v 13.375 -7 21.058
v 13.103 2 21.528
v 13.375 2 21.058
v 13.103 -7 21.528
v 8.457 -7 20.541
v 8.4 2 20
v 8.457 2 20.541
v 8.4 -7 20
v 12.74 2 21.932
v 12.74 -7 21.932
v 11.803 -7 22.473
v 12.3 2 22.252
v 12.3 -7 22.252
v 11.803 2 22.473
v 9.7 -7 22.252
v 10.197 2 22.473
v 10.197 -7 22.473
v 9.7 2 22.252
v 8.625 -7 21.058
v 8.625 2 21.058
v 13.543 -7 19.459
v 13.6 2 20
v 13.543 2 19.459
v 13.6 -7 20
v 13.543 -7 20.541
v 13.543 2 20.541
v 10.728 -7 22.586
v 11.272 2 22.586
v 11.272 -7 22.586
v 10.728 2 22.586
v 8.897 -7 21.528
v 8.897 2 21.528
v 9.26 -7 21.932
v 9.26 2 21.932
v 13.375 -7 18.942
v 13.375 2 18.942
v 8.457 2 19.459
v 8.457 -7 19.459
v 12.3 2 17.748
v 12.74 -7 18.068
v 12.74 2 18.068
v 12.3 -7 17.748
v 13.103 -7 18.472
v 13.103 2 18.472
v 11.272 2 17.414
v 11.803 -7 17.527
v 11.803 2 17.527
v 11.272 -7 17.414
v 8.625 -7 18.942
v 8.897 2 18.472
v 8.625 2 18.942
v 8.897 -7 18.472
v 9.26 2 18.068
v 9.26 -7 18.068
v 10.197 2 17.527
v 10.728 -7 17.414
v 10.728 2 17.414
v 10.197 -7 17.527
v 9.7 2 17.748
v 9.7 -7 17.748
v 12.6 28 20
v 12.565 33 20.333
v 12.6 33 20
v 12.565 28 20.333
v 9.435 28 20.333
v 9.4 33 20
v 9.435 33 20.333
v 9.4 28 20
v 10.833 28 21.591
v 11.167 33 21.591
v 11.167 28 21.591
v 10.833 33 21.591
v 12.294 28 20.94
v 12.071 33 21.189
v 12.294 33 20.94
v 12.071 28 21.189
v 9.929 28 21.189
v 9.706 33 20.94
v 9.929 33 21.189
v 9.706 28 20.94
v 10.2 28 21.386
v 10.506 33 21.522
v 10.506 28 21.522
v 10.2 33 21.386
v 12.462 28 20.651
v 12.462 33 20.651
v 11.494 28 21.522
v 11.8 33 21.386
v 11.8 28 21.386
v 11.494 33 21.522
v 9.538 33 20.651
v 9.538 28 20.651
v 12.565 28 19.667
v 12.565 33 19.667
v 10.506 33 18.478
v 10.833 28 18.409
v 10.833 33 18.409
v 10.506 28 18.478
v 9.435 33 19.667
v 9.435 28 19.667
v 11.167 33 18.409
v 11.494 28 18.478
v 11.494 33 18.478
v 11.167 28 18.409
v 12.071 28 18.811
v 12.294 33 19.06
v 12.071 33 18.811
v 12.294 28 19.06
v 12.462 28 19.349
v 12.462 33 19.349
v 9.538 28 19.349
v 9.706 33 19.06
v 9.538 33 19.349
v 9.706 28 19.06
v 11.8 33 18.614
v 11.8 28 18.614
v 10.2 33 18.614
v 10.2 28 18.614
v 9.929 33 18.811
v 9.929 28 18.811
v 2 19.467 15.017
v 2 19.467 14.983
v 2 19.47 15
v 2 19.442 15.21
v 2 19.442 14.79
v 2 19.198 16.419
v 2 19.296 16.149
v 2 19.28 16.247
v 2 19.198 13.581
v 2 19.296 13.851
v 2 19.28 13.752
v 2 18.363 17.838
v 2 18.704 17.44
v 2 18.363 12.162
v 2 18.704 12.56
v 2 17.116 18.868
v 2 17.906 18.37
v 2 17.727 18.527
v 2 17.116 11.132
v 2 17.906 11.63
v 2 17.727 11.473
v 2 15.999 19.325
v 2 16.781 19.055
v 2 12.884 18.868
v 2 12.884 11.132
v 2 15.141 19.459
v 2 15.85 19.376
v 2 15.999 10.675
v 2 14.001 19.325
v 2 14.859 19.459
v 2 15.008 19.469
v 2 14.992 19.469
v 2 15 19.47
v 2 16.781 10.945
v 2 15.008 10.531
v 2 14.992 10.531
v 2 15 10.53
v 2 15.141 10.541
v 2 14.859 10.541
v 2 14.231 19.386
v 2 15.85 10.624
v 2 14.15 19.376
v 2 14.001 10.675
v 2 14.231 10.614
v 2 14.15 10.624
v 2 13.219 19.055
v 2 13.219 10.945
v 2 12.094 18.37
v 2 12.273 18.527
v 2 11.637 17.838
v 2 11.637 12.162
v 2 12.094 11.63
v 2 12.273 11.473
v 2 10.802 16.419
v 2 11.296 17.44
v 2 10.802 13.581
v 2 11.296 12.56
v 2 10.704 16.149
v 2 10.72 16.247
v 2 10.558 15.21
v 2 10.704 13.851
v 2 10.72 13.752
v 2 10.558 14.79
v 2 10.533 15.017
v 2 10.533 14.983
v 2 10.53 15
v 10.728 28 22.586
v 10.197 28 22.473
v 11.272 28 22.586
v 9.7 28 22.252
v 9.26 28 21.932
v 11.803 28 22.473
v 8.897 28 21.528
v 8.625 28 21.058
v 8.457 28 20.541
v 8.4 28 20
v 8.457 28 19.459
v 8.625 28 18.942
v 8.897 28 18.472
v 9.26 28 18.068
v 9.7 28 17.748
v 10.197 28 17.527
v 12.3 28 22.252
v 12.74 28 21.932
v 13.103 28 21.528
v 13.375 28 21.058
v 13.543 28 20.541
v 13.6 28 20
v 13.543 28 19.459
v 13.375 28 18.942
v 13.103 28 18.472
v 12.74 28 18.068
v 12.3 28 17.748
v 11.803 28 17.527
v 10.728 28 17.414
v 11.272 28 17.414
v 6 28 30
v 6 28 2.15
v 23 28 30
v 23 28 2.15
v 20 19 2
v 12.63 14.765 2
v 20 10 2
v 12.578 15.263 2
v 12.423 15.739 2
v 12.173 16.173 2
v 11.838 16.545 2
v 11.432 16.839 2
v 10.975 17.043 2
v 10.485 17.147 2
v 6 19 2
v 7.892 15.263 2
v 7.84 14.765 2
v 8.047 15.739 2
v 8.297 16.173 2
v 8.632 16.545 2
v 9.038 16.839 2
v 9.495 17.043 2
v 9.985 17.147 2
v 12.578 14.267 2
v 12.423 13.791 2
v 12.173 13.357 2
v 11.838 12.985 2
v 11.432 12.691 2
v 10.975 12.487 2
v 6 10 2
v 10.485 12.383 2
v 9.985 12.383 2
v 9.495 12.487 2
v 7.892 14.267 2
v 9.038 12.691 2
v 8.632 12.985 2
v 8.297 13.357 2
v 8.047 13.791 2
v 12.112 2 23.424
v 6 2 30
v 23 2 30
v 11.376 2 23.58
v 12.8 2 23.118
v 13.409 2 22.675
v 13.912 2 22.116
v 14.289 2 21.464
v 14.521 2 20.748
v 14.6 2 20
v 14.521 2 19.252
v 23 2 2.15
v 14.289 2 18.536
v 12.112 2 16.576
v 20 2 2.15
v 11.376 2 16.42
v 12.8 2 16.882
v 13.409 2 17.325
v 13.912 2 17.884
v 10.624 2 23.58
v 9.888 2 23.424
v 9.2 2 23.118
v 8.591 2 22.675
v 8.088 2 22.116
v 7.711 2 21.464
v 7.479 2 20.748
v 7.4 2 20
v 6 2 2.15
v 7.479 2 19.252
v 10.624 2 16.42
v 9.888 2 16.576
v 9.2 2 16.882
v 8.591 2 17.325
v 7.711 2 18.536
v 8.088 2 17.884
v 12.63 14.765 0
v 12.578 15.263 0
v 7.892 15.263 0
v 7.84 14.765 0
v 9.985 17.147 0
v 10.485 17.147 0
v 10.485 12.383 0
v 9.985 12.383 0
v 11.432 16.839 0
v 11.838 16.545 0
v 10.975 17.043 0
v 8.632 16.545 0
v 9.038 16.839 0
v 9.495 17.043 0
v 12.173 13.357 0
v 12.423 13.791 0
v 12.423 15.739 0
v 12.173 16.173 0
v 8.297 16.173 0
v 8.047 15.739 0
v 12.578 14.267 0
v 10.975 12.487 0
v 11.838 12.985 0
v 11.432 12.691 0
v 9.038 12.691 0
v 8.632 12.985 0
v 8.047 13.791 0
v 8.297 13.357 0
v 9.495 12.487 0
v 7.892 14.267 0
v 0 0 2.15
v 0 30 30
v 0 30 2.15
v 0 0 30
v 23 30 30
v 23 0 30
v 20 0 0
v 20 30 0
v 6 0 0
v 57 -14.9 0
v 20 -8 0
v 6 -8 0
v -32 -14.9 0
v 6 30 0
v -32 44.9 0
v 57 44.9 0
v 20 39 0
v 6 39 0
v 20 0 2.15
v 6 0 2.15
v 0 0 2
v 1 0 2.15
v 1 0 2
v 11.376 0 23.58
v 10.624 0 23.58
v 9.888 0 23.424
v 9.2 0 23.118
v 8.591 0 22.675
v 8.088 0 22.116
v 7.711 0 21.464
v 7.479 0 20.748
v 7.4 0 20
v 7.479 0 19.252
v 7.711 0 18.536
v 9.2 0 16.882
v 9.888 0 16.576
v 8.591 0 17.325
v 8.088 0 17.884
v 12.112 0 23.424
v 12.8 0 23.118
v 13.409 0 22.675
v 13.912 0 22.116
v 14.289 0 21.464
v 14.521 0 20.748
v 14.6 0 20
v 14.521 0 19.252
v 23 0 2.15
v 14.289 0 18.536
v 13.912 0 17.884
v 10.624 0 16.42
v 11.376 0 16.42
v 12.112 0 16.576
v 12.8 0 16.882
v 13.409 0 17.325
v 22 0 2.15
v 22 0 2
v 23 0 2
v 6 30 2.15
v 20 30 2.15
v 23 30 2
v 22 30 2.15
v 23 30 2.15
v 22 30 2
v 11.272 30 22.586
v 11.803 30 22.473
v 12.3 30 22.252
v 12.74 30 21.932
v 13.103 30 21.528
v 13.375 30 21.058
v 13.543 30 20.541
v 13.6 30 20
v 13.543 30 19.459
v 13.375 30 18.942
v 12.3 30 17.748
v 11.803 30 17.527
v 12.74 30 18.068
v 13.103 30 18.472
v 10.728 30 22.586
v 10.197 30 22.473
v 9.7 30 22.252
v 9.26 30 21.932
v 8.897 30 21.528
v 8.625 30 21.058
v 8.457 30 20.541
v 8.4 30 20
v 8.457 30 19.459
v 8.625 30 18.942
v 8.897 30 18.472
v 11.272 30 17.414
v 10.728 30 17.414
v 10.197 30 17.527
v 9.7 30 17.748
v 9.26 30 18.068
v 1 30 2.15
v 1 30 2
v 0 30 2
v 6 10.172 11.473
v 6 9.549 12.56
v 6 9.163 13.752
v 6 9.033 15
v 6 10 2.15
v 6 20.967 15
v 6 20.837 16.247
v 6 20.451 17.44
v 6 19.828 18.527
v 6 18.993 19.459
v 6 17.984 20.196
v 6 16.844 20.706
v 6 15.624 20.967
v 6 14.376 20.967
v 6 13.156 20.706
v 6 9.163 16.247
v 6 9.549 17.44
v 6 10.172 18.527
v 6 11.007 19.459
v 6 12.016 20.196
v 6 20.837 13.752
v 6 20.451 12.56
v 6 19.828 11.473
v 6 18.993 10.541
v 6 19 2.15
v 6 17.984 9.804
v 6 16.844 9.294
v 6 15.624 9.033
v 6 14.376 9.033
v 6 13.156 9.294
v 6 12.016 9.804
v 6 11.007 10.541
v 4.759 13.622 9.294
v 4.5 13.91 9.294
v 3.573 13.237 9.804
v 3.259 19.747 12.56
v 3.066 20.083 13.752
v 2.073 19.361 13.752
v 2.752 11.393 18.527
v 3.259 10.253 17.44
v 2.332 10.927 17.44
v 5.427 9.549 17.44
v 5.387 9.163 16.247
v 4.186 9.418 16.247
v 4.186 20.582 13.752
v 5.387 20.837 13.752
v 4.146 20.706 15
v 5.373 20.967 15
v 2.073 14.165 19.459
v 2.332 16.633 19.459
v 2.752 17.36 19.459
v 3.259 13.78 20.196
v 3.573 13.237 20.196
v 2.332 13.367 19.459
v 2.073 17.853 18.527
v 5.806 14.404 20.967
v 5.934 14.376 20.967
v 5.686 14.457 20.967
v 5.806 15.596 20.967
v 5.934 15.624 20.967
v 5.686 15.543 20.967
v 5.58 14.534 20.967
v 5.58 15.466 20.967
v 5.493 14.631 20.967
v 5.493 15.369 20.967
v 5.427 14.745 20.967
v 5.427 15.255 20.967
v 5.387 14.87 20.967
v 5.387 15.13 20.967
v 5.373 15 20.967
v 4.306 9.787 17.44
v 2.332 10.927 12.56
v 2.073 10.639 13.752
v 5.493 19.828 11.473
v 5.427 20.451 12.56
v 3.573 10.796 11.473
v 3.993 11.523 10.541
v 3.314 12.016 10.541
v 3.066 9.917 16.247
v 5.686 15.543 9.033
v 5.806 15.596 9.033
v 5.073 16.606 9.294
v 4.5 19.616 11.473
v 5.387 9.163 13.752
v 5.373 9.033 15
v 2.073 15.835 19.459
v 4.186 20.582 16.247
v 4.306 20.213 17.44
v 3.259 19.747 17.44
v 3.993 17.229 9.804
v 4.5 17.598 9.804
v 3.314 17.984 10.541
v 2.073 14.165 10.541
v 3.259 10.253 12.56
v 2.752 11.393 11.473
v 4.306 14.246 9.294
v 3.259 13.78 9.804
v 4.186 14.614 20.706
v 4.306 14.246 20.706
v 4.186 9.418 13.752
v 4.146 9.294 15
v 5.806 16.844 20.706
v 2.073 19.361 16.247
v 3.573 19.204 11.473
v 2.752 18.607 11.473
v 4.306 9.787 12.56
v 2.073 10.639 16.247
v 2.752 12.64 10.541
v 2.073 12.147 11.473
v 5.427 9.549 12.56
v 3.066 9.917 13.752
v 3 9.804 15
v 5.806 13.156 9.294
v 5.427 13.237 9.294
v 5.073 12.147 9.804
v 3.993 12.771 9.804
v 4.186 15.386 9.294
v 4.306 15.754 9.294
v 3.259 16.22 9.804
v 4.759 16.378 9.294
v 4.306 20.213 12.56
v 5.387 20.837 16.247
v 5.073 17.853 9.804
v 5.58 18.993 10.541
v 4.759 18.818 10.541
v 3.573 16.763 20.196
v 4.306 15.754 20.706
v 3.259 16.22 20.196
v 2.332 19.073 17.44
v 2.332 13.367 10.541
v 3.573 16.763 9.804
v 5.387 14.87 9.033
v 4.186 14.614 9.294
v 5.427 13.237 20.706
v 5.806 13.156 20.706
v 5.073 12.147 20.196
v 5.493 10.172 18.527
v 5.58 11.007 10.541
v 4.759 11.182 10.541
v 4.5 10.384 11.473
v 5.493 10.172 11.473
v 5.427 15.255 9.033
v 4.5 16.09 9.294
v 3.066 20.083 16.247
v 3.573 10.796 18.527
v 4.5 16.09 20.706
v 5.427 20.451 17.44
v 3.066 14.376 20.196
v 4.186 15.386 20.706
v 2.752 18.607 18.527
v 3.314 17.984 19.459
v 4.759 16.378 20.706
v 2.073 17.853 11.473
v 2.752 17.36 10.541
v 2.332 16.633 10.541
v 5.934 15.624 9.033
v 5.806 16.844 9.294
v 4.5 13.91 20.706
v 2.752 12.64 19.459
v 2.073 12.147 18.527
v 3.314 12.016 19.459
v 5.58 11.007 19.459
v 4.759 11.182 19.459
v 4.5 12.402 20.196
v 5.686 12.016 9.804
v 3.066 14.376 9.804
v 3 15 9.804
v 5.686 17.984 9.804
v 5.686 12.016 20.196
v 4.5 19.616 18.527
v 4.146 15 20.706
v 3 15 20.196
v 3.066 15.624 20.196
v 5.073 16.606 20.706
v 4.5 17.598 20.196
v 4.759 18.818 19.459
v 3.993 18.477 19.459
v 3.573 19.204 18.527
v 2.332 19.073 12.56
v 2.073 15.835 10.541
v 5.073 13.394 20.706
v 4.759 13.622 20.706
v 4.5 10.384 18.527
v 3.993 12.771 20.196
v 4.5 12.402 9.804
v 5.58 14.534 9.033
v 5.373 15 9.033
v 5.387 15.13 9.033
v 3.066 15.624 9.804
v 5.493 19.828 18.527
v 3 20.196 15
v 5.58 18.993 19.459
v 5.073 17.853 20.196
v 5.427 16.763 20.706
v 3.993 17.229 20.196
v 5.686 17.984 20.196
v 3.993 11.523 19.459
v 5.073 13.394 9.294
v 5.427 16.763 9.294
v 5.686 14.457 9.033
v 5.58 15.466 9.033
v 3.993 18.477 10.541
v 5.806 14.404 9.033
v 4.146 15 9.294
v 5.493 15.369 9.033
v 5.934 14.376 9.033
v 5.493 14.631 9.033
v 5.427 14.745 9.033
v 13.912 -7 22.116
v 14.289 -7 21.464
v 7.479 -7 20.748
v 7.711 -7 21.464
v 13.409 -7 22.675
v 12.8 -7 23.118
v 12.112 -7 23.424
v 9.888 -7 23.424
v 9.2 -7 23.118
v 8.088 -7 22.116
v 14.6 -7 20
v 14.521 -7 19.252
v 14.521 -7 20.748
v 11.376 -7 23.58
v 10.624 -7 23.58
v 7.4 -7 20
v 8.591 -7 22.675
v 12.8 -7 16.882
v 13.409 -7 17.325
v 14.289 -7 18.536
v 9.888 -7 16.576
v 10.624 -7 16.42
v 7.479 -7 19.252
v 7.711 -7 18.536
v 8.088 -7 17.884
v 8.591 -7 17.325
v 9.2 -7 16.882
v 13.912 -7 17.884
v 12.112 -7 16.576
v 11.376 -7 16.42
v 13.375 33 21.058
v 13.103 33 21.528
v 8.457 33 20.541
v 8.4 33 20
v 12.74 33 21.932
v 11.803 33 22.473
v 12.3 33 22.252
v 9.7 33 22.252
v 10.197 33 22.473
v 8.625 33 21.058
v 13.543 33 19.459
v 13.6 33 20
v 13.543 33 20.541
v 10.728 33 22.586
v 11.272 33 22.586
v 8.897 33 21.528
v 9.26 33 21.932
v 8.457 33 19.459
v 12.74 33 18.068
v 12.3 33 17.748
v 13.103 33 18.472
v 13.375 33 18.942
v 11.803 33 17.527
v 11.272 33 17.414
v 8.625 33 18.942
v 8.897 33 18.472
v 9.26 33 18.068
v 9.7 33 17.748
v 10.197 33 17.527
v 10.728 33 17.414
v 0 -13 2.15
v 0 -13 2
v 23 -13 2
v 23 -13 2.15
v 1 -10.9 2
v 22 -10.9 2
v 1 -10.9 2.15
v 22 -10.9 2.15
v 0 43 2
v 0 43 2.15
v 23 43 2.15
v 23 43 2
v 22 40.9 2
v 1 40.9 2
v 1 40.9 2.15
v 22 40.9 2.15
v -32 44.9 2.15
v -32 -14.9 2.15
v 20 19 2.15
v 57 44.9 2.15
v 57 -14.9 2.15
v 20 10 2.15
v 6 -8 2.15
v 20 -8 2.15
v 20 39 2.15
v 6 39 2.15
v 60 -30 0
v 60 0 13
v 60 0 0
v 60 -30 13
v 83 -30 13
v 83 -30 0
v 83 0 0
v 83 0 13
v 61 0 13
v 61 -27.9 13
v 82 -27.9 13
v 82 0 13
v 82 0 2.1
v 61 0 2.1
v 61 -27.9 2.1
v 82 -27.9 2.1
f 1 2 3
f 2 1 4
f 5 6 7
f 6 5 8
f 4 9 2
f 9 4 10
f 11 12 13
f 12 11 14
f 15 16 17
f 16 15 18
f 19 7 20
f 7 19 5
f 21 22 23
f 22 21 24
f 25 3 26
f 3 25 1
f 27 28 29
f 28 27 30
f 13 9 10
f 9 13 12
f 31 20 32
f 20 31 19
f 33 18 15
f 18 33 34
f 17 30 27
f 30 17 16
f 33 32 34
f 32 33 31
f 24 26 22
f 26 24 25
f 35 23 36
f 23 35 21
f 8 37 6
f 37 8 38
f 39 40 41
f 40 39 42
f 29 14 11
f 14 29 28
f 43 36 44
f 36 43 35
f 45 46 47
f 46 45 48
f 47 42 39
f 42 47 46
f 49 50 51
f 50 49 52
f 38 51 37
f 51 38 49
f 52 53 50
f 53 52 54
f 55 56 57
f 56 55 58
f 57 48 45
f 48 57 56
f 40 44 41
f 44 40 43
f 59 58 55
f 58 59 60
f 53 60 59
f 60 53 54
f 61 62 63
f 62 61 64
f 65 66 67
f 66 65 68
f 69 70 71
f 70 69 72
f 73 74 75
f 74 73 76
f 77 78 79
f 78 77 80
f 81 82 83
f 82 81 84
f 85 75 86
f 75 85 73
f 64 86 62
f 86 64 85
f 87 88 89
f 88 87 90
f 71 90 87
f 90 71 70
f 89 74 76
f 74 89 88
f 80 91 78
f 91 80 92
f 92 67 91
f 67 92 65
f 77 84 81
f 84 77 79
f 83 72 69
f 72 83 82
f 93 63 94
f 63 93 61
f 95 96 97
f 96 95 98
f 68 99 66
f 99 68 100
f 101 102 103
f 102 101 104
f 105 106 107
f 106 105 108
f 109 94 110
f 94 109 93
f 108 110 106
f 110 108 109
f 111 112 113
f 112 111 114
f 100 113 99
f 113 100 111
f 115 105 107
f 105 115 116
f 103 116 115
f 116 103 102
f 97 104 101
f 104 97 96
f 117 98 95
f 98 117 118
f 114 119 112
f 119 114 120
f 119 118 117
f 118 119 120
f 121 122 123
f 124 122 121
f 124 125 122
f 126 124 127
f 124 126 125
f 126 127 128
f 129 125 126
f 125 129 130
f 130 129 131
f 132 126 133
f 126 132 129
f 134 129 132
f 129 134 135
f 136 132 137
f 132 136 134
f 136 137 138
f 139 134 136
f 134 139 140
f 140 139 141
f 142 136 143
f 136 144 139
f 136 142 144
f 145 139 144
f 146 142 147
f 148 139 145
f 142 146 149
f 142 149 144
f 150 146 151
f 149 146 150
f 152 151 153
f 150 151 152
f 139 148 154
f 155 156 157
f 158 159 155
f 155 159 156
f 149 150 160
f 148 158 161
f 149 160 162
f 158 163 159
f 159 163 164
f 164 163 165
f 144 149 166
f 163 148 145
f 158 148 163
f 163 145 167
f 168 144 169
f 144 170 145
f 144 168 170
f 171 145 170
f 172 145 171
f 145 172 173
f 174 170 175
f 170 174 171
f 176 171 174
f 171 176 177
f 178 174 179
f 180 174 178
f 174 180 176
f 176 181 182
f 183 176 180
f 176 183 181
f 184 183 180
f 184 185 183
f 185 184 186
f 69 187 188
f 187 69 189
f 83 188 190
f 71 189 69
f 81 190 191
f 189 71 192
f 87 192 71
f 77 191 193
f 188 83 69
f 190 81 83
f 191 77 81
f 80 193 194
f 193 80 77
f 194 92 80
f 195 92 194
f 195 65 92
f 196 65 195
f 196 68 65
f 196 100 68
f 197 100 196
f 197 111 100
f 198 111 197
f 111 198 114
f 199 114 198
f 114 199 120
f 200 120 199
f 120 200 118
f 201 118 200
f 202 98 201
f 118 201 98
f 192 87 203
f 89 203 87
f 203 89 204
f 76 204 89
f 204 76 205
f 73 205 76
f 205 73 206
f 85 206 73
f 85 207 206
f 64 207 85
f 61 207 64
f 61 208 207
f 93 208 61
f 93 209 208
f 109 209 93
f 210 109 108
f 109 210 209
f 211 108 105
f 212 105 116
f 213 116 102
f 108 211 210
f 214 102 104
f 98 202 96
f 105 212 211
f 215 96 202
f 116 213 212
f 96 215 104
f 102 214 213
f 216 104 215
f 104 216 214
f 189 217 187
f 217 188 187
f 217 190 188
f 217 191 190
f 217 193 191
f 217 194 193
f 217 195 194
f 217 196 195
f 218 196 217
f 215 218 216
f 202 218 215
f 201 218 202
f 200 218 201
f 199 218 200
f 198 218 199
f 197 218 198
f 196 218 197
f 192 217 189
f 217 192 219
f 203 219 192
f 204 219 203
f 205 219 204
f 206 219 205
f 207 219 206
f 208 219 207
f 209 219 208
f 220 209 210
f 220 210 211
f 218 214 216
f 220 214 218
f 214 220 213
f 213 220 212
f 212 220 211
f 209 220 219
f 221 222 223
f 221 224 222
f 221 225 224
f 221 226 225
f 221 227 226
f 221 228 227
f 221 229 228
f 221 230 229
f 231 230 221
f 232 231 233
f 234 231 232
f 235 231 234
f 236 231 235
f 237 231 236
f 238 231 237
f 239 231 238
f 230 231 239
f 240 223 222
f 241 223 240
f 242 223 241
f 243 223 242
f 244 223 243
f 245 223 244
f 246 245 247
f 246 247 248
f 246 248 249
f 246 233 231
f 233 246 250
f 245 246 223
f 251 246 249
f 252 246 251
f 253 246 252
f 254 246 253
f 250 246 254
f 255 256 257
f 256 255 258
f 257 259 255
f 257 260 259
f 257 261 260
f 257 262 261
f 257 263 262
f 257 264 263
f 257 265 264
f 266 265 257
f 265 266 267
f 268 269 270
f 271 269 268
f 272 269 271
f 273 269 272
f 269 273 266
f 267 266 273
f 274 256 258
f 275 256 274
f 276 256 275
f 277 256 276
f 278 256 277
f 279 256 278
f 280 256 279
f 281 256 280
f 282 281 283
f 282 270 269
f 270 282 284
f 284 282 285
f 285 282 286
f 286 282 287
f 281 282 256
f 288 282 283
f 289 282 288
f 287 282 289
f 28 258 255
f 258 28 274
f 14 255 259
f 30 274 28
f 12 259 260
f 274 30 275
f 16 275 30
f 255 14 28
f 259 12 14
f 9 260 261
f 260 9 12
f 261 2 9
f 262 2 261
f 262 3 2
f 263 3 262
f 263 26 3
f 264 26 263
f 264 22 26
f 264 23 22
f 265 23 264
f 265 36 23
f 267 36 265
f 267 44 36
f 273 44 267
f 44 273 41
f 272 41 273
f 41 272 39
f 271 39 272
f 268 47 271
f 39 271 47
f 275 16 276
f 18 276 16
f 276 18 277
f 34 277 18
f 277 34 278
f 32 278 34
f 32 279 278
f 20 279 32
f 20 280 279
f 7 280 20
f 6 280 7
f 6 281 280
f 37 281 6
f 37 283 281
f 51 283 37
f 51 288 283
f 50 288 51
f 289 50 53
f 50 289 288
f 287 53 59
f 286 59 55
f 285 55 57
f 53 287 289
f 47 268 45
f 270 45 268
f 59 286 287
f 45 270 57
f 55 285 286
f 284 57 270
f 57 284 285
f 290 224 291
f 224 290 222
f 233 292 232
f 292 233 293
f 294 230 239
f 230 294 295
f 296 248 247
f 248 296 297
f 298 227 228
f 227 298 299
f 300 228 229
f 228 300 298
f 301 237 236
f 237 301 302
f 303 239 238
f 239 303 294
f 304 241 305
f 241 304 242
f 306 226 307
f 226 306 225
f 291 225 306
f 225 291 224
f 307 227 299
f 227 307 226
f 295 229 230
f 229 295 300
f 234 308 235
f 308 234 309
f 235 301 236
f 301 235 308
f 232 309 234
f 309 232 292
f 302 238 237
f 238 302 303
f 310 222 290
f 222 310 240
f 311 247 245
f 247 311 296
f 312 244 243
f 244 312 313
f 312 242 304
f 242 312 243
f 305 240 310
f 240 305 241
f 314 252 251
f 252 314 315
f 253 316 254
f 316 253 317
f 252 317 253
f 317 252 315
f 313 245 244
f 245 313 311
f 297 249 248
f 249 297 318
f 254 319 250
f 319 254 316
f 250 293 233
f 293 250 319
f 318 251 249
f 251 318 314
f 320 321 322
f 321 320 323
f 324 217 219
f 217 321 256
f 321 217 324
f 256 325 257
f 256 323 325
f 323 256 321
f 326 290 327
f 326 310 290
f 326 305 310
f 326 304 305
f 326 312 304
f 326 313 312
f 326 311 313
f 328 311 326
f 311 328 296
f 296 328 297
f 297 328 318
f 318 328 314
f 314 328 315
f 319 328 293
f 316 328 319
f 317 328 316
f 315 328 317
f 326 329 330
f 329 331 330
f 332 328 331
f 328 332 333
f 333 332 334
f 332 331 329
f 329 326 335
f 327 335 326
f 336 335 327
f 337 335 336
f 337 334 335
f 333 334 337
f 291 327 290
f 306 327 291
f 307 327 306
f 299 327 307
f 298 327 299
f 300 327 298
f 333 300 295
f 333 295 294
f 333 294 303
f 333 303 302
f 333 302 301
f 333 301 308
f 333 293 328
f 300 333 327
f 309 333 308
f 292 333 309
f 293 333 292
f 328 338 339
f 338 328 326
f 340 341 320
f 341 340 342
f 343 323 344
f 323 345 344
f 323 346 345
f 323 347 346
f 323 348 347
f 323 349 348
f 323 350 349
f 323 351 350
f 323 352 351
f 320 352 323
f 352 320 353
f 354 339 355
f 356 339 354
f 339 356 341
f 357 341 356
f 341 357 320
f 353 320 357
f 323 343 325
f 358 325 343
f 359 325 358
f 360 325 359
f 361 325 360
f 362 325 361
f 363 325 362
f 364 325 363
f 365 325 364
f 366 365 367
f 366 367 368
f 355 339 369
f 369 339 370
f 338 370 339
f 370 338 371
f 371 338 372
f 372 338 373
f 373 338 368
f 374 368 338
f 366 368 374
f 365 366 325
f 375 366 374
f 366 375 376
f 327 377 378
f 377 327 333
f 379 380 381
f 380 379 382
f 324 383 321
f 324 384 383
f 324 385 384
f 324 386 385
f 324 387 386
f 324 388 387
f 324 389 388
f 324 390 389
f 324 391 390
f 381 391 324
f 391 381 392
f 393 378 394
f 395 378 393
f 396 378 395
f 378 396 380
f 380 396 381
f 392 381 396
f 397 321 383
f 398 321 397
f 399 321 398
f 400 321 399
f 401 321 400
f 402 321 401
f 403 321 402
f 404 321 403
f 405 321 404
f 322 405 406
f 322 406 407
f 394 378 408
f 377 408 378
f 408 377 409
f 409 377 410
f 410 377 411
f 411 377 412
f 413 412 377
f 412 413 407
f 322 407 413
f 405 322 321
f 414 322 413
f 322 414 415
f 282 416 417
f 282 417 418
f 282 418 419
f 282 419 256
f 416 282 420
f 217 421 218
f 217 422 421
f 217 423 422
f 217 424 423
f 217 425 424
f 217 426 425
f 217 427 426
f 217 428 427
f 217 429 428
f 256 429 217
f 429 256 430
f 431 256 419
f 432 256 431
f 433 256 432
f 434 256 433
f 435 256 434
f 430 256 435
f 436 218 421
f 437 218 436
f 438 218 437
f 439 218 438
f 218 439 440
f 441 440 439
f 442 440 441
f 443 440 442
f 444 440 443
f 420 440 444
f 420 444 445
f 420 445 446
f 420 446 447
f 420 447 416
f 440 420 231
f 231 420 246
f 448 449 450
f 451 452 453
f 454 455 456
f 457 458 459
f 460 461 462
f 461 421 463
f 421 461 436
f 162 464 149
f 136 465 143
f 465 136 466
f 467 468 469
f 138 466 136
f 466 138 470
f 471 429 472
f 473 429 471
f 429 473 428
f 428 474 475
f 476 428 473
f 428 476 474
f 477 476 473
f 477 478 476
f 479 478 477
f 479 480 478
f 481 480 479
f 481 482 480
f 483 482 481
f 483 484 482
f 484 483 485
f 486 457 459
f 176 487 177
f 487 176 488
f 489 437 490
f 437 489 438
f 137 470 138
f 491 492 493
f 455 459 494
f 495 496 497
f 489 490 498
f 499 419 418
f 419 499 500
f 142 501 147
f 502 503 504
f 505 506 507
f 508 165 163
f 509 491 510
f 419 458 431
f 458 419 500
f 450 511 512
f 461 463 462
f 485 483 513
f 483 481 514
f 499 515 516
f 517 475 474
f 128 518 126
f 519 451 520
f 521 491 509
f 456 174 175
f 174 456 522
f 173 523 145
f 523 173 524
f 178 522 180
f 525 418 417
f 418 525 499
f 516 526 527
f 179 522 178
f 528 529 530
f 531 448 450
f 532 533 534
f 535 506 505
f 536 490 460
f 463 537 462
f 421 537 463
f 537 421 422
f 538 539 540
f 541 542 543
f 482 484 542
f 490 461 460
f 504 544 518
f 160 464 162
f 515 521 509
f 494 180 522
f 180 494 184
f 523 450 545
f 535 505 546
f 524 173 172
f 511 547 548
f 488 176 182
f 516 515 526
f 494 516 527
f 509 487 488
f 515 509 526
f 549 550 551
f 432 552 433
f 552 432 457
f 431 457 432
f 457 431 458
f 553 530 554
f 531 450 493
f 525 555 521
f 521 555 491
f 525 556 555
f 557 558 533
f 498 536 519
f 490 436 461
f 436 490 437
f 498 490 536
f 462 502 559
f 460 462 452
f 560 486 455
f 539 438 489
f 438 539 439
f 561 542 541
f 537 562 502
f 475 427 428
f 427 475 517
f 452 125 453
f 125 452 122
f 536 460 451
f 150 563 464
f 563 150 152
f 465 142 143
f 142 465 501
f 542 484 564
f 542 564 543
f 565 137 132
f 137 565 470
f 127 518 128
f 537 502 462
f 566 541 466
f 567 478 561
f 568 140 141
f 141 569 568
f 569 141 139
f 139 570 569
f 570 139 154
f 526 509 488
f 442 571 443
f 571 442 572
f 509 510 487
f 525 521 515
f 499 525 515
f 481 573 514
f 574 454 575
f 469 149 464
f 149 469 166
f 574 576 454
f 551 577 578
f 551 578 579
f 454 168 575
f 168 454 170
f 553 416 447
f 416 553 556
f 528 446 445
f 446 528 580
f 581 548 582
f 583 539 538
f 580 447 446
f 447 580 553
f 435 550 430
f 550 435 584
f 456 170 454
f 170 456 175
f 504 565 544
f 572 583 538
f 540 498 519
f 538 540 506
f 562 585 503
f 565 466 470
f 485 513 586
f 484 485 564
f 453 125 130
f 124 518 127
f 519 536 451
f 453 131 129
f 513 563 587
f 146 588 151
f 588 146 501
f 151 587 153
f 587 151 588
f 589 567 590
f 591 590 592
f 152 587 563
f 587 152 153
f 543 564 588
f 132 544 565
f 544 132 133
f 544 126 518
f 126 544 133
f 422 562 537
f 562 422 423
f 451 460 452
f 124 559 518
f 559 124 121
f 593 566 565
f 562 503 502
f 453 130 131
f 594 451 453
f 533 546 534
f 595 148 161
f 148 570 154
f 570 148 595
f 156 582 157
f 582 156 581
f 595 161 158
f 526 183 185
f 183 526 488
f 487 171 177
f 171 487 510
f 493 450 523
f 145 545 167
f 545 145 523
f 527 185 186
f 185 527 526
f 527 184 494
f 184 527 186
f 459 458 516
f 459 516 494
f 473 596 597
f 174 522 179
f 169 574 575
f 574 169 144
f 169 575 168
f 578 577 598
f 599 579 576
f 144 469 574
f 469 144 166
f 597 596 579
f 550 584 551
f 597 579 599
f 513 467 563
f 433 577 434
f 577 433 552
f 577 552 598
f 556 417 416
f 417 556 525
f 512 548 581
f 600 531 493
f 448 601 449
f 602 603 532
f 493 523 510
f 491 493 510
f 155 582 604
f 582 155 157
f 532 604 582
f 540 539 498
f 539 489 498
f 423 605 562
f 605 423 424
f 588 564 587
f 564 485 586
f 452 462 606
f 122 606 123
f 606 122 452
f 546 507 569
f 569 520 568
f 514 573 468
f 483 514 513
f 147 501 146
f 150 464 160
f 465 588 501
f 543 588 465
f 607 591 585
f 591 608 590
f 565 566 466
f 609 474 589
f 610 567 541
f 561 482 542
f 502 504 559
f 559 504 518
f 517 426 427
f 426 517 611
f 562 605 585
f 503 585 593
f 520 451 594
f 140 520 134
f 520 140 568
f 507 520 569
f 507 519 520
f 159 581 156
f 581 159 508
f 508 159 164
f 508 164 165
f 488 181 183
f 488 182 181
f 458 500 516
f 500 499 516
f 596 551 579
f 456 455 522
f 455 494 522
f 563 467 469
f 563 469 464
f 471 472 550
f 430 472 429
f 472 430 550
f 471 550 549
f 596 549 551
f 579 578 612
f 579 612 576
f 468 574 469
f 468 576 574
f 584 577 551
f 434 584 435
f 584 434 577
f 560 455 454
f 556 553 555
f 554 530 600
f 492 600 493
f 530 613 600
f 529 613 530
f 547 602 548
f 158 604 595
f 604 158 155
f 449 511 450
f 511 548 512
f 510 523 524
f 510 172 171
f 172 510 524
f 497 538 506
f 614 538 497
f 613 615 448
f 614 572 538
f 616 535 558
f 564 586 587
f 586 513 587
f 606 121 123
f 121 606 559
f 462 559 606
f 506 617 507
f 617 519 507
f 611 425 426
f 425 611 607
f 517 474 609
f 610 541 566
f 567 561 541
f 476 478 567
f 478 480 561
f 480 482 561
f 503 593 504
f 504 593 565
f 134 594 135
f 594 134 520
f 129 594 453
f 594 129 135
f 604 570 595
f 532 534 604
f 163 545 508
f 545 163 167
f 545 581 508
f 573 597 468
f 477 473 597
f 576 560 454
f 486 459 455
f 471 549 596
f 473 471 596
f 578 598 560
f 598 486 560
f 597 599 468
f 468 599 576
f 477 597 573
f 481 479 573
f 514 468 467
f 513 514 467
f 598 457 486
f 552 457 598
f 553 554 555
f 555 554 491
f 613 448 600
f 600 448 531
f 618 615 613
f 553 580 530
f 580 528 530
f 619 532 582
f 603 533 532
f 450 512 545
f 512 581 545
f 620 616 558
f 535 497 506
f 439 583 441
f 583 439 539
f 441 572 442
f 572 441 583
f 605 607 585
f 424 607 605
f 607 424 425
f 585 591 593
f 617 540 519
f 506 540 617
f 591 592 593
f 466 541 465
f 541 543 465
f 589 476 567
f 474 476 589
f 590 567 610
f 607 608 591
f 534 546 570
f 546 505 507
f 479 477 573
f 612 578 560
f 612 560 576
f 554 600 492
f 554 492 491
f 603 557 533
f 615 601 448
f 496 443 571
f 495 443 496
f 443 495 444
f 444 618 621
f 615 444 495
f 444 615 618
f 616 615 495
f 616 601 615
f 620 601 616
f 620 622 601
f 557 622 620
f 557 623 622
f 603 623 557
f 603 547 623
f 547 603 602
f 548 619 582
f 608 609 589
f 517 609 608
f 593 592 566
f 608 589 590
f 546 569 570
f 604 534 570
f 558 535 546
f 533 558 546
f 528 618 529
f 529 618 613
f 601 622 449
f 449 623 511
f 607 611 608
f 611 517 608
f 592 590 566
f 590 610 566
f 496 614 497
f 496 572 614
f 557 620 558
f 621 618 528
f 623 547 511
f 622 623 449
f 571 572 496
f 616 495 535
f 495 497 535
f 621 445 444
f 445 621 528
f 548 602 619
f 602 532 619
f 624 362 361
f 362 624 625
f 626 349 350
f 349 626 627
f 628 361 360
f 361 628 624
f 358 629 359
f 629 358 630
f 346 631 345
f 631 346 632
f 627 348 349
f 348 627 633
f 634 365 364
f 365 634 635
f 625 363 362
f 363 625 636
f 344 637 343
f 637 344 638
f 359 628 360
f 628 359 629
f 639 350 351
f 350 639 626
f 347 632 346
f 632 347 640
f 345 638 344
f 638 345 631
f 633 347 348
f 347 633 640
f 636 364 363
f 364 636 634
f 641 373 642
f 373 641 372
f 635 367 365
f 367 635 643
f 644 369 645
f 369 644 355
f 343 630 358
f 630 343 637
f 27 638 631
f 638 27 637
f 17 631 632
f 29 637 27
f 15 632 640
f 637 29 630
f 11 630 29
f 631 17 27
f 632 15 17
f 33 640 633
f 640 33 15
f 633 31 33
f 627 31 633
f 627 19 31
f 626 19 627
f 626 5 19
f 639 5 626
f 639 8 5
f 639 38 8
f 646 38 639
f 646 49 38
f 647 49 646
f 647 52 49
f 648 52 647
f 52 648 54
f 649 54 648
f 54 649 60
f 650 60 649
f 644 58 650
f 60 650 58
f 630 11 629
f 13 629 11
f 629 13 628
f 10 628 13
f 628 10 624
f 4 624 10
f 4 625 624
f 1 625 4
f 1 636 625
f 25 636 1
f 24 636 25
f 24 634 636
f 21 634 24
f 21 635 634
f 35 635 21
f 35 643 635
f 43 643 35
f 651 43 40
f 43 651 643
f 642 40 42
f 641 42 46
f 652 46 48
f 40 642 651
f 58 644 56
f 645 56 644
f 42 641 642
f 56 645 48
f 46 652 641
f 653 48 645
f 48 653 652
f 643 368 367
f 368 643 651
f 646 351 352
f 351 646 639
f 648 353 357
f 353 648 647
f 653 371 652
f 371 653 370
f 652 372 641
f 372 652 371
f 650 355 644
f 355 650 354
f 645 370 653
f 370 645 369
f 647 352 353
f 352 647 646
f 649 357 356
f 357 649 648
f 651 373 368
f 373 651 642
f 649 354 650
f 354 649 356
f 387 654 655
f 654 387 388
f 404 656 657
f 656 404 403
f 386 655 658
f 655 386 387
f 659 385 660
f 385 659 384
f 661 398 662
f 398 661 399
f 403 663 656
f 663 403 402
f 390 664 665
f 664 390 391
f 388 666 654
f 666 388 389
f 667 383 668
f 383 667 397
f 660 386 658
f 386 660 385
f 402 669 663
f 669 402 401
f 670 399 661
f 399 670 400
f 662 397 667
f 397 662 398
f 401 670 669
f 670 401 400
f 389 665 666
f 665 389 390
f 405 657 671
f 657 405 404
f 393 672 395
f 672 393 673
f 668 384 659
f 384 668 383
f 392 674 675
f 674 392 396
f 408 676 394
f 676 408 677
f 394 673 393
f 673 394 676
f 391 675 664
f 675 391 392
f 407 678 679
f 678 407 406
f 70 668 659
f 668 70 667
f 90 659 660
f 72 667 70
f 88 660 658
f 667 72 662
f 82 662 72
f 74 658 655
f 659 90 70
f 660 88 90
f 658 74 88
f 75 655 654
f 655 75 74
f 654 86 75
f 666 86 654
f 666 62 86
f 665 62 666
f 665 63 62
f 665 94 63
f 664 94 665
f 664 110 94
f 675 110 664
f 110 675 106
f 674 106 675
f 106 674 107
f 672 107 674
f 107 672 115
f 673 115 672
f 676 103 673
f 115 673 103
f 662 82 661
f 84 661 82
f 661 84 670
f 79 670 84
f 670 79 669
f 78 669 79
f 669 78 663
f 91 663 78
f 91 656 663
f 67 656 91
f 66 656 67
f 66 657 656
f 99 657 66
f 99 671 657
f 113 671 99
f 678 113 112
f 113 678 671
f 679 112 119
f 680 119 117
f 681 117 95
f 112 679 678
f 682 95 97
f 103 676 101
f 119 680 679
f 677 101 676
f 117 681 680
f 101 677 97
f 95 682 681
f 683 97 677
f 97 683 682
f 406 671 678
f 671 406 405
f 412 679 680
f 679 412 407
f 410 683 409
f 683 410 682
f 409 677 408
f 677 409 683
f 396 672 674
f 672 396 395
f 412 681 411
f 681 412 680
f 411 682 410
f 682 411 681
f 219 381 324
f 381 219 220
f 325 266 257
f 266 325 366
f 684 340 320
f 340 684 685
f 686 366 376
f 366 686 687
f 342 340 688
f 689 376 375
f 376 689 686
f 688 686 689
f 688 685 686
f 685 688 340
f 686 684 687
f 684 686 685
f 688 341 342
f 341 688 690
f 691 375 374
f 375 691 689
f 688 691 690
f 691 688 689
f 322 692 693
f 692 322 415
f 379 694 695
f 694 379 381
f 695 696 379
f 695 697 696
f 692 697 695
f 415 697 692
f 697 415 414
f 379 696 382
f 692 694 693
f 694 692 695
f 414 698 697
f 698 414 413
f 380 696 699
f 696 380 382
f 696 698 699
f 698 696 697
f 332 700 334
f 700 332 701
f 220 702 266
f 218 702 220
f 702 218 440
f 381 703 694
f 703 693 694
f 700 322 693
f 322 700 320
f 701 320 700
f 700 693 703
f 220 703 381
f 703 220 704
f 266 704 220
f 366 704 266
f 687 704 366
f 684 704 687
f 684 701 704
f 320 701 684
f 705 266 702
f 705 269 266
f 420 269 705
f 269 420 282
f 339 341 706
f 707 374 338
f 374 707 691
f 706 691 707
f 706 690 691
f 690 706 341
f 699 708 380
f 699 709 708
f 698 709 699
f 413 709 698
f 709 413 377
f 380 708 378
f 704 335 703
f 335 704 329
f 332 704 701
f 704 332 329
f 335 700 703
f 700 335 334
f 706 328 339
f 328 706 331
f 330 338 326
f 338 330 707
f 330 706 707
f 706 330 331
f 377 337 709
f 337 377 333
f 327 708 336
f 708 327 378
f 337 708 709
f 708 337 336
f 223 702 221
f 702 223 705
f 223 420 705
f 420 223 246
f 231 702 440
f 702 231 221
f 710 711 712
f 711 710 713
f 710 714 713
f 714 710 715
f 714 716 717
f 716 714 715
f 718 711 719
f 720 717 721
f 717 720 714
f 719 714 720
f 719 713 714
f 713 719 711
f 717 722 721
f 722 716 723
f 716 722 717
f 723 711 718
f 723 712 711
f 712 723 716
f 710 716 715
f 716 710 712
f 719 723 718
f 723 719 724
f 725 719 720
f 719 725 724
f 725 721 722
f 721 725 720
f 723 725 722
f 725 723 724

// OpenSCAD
// file: ring.scad
///////////////////////////////////////
// Module to make rings              //
// aka cylinders with holes in them  //
// ring (hole diameter,              //
//       ring thickness,             //
//       ring height)                //
// developed by AM Chagas 09-2019    //
//      CC-BY-SA 4.0                 //
///////////////////////////////////////

module ring(ringd=10,ringb=5,ringh=2){
    difference(){
        cylinder(d=ringd+ringb,h=ringh);
        translate([0,0,-1]){
            cylinder(d=ringd,h=ringh+2);
        }//endtranslate
    }//end difference
}//end module

//ring(10,10,50);
// main file
///////////////////////////////////////////
// Design for a liking spout to be used  //
// in the behaviour box                  //
//  CC-BY-SA 4.0 20191008                //
//  Andre Maia Chagas                    //
///////////////////////////////////////////

// all dimensions in mm.

//needs the ring.scad file (saved on the same folder)
use <ring.scad>

//// variables /////////////

//needle used as licking spout
needlediameter = 1.53;

//back plate dimensions 
//(the plate that slides on the metal railings)
backpanelx = 44.5*2;
backpanely = 59.80;
backpanelz = 2.15;

supportw=5;

//dimensions for the headport 
//(a "negative" space where the licking spout will be placed)
headportx = 30;
headporty = 30;
headportz = 30;
lickspoutoffset = 5;
//wall thickness
headportwall = 2;
protusion = 30;

//force sensor dimensions
forcesensord = 18.3;
forcesensorh = 0.8;
forcesensorl = 33; //how long the long part of the sensor
forcesensorw = 8; // wiidth of the long part of the sensor

//infrared led dimensions
irrecd = 3;
irrech = 5;
irledd = 5;
irledh = 9;

//nut & screw infor
screwd = 3.2;
nutd = 5;

/* change this depending on the printer and printer settings
   it is a "tolerance" variable, so holes and fittings can be 
   adjusted.
*/
tol = 0.1;

$fn=30;
//%cube([backpanelx,backpanely,backpanelz]);


//supporting modules



module irholes(){
    rotate([90,0,0]){
        translate([0,0,0]){
            cylinder(d=irledd+2*tol,h=irledh);
        }//end translate
        translate([0,0,-headporty]){    
            cylinder(d=irrecd+2*tol,h=irledh);
        }//end translate
     }//end rotate
}//end module ir holes
////

module irsupports(){
rotate([90,0,0]){
    translate([0,0,headportwall]){
ring(irledd+2*tol,2,irledh);
    }//end translate
translate([0,0,-headporty+headportwall/2]){    
    ring(irrecd+2*tol,2,irrech);
    }//end translate
}//end rotate
}//end module ir holes
////


module fsensorholder(){
difference(){
union(){
    cylinder(d=forcesensord+2*tol+headportwall,h=forcesensorh+headportwall/2);
    translate([-4.5,-13,-2]){
        cube([forcesensorw+headportwall,forcesensord+5,forcesensorh+headportwall/2+2]);
    }//end translate
}//end union

union(){
    translate([0,0,forcesensorh/2+headportwall/2]){
        cylinder(d=forcesensord+2*tol,h=forcesensorh);
    }//end translate
    translate([(-forcesensorw+headportwall/2)/2,0,(forcesensorh+headportwall)/2]){
        cube([forcesensorw+2*tol,forcesensorl+headportwall,5]);
    }//end translate
    translate([needlediameter/2,headporty/2+2,needlediameter/4+headportwall/2]){
        rotate([90,0,0]){
            cylinder(d=needlediameter+2*tol,h=55);
        }//end rotate
    }//end translate
}//end union

}//end difference

}//end module
/////////////////////////////


module needlesupport(){
    module mainframe(){
difference(){
cube([8+2*headportwall,forcesensorw+2*headportwall,35+2*headportwall]);
translate([headportwall,-headportwall,headportwall]){
cube([8,forcesensorw+4*headportwall,28]);
}//end translate
}//end difference
translate([headportwall,0,5]){
cube([8,forcesensorw+2*headportwall,headportwall]);
}//end translate
}//end submodule

difference(){
mainframe();


translate([irrecd/2+2*headportwall,(forcesensorw+2*headportwall)/2,-headportwall-1]){
    rotate([0,0,0]){
        cylinder(d=needlediameter+2*tol,h=20);
    }//end rotate
    translate([0,0,35+headportwall]){
    rotate([90,0,0]){
        
        cylinder(d=irledd+2*tol,h=20);
        
    }//end rotate
    rotate([-90,0,0]){
        
        cylinder(d=irrecd+2*tol,h=20);
        
    }//end rotate
    }//end translate
}//end translate



translate([headportwall,headportwall,10]){
        cube([8,forcesensorw,30]);
        
    }//end translate
    
}//end difference
translate([(8+headportwall)/2+0.5,0,35+headportwall-irledd/2-0.5]){
rotate([90,0,0]){
ring(irledd+2*tol,2,irledh);
}//end rotate
}//end translate
translate([(8+headportwall)/2+0.5,forcesensorw+2*headportwall,35+headportwall-irrecd]){
rotate([-90,0,0]){
ring(irrecd+2*tol,2,irrech);

}//end rotate
}//end translate
}//end module
///


/////////////////////////////
module lickingport(){
//head port
difference(){
cube([headportx,headporty,headportz]);
    
    
union(){    
translate([headportwall,headportwall,headportwall]){
cube([headportx-headportwall*2,headporty-headportwall*2,headportz]);
}//end translate


//needle entry
translate([headportx/5+lickspoutoffset-needlediameter/2,(headporty-headportwall+needlediameter)/2,-35]){
    cylinder(d=3*needlediameter+2*tol,h=50);
    }//end translate
 
    //led side ports
    translate([headportx/5+5,headportwall+2,4*headportz/5-4]){
        irholes();
    }//end translate
}//end union
}//end difference
///////////////////////

////////////////////////////
    
///////////////////////////
//base plate with round liquid reservoir


difference(){ 
cube([headportx/5,headporty,headportz]);
translate([headportx/5,headporty/2,3*headportz/6]){
    sphere(d=12);
    }//end translate
}//end difference
    
////////////////////////////

translate([headportx/5+5,headportwall+2,4*headportz/5-4]){
irsupports();
}
}//end licking port


module backpanel(){
difference(){
translate([-(headportx+2*headportwall)/2,-backpanely/2+headporty/2,headportz-headportwall-0.15]){

cube([backpanelx,backpanely,backpanelz]);
    

}
translate([0,0,5]){
cube([headportx,headporty,headportz]);
}//end transalte
}//end difference
}//end module

module covers(){
    difference(){
    
        cube([headportx-7,2*headportwall+irledh,headportz]);
    translate([headportwall/2,headportwall+0.1,-0.1]){
    cube([headportx-7-headportwall,headportwall+irledh,headportz-headportwall]);
    }

}//end difference
}//end module

/*
///////////////////////////
lickingport();
backpanel();
///////////////////////////

translate([5,headporty/2-(forcesensorw+2*headportwall)/2,-(35+2*headportwall)]){
//rotate([0,0,180]){
//fsensorholder();
needlesupport();
//}//end rotate
}//end translate


//
//needlesupport();
*/
difference(){
lickingport();
translate([headportx-headportwall-5,-1,-2]){
cube([20,headporty+2,headportz+5]);
}//end translate
}//end difference

difference(){
translate([-(headportx+headportwall),-backpanely/2+headporty/2,0]){
cube([backpanelx,backpanely,backpanelz]);
    }//end translate

translate ([6,-8,-1]){
cube([14,10,10]);
}
translate ([6,headporty,-1]){
cube([14,9,10]);
}

translate ([6,10,-1]){
cube([14,9,10]);
}

union(){
translate([0,-(2*headportwall+irledh),2]){
covers();}
translate([0,headporty+irledh+2*headportwall,2]){
mirror([0,1,0]){
covers();
}//end mirror
}//end translate
}//end union
}
rotate([90,0,0]){
translate([2*headportx,0,0]){
covers();
}
}
